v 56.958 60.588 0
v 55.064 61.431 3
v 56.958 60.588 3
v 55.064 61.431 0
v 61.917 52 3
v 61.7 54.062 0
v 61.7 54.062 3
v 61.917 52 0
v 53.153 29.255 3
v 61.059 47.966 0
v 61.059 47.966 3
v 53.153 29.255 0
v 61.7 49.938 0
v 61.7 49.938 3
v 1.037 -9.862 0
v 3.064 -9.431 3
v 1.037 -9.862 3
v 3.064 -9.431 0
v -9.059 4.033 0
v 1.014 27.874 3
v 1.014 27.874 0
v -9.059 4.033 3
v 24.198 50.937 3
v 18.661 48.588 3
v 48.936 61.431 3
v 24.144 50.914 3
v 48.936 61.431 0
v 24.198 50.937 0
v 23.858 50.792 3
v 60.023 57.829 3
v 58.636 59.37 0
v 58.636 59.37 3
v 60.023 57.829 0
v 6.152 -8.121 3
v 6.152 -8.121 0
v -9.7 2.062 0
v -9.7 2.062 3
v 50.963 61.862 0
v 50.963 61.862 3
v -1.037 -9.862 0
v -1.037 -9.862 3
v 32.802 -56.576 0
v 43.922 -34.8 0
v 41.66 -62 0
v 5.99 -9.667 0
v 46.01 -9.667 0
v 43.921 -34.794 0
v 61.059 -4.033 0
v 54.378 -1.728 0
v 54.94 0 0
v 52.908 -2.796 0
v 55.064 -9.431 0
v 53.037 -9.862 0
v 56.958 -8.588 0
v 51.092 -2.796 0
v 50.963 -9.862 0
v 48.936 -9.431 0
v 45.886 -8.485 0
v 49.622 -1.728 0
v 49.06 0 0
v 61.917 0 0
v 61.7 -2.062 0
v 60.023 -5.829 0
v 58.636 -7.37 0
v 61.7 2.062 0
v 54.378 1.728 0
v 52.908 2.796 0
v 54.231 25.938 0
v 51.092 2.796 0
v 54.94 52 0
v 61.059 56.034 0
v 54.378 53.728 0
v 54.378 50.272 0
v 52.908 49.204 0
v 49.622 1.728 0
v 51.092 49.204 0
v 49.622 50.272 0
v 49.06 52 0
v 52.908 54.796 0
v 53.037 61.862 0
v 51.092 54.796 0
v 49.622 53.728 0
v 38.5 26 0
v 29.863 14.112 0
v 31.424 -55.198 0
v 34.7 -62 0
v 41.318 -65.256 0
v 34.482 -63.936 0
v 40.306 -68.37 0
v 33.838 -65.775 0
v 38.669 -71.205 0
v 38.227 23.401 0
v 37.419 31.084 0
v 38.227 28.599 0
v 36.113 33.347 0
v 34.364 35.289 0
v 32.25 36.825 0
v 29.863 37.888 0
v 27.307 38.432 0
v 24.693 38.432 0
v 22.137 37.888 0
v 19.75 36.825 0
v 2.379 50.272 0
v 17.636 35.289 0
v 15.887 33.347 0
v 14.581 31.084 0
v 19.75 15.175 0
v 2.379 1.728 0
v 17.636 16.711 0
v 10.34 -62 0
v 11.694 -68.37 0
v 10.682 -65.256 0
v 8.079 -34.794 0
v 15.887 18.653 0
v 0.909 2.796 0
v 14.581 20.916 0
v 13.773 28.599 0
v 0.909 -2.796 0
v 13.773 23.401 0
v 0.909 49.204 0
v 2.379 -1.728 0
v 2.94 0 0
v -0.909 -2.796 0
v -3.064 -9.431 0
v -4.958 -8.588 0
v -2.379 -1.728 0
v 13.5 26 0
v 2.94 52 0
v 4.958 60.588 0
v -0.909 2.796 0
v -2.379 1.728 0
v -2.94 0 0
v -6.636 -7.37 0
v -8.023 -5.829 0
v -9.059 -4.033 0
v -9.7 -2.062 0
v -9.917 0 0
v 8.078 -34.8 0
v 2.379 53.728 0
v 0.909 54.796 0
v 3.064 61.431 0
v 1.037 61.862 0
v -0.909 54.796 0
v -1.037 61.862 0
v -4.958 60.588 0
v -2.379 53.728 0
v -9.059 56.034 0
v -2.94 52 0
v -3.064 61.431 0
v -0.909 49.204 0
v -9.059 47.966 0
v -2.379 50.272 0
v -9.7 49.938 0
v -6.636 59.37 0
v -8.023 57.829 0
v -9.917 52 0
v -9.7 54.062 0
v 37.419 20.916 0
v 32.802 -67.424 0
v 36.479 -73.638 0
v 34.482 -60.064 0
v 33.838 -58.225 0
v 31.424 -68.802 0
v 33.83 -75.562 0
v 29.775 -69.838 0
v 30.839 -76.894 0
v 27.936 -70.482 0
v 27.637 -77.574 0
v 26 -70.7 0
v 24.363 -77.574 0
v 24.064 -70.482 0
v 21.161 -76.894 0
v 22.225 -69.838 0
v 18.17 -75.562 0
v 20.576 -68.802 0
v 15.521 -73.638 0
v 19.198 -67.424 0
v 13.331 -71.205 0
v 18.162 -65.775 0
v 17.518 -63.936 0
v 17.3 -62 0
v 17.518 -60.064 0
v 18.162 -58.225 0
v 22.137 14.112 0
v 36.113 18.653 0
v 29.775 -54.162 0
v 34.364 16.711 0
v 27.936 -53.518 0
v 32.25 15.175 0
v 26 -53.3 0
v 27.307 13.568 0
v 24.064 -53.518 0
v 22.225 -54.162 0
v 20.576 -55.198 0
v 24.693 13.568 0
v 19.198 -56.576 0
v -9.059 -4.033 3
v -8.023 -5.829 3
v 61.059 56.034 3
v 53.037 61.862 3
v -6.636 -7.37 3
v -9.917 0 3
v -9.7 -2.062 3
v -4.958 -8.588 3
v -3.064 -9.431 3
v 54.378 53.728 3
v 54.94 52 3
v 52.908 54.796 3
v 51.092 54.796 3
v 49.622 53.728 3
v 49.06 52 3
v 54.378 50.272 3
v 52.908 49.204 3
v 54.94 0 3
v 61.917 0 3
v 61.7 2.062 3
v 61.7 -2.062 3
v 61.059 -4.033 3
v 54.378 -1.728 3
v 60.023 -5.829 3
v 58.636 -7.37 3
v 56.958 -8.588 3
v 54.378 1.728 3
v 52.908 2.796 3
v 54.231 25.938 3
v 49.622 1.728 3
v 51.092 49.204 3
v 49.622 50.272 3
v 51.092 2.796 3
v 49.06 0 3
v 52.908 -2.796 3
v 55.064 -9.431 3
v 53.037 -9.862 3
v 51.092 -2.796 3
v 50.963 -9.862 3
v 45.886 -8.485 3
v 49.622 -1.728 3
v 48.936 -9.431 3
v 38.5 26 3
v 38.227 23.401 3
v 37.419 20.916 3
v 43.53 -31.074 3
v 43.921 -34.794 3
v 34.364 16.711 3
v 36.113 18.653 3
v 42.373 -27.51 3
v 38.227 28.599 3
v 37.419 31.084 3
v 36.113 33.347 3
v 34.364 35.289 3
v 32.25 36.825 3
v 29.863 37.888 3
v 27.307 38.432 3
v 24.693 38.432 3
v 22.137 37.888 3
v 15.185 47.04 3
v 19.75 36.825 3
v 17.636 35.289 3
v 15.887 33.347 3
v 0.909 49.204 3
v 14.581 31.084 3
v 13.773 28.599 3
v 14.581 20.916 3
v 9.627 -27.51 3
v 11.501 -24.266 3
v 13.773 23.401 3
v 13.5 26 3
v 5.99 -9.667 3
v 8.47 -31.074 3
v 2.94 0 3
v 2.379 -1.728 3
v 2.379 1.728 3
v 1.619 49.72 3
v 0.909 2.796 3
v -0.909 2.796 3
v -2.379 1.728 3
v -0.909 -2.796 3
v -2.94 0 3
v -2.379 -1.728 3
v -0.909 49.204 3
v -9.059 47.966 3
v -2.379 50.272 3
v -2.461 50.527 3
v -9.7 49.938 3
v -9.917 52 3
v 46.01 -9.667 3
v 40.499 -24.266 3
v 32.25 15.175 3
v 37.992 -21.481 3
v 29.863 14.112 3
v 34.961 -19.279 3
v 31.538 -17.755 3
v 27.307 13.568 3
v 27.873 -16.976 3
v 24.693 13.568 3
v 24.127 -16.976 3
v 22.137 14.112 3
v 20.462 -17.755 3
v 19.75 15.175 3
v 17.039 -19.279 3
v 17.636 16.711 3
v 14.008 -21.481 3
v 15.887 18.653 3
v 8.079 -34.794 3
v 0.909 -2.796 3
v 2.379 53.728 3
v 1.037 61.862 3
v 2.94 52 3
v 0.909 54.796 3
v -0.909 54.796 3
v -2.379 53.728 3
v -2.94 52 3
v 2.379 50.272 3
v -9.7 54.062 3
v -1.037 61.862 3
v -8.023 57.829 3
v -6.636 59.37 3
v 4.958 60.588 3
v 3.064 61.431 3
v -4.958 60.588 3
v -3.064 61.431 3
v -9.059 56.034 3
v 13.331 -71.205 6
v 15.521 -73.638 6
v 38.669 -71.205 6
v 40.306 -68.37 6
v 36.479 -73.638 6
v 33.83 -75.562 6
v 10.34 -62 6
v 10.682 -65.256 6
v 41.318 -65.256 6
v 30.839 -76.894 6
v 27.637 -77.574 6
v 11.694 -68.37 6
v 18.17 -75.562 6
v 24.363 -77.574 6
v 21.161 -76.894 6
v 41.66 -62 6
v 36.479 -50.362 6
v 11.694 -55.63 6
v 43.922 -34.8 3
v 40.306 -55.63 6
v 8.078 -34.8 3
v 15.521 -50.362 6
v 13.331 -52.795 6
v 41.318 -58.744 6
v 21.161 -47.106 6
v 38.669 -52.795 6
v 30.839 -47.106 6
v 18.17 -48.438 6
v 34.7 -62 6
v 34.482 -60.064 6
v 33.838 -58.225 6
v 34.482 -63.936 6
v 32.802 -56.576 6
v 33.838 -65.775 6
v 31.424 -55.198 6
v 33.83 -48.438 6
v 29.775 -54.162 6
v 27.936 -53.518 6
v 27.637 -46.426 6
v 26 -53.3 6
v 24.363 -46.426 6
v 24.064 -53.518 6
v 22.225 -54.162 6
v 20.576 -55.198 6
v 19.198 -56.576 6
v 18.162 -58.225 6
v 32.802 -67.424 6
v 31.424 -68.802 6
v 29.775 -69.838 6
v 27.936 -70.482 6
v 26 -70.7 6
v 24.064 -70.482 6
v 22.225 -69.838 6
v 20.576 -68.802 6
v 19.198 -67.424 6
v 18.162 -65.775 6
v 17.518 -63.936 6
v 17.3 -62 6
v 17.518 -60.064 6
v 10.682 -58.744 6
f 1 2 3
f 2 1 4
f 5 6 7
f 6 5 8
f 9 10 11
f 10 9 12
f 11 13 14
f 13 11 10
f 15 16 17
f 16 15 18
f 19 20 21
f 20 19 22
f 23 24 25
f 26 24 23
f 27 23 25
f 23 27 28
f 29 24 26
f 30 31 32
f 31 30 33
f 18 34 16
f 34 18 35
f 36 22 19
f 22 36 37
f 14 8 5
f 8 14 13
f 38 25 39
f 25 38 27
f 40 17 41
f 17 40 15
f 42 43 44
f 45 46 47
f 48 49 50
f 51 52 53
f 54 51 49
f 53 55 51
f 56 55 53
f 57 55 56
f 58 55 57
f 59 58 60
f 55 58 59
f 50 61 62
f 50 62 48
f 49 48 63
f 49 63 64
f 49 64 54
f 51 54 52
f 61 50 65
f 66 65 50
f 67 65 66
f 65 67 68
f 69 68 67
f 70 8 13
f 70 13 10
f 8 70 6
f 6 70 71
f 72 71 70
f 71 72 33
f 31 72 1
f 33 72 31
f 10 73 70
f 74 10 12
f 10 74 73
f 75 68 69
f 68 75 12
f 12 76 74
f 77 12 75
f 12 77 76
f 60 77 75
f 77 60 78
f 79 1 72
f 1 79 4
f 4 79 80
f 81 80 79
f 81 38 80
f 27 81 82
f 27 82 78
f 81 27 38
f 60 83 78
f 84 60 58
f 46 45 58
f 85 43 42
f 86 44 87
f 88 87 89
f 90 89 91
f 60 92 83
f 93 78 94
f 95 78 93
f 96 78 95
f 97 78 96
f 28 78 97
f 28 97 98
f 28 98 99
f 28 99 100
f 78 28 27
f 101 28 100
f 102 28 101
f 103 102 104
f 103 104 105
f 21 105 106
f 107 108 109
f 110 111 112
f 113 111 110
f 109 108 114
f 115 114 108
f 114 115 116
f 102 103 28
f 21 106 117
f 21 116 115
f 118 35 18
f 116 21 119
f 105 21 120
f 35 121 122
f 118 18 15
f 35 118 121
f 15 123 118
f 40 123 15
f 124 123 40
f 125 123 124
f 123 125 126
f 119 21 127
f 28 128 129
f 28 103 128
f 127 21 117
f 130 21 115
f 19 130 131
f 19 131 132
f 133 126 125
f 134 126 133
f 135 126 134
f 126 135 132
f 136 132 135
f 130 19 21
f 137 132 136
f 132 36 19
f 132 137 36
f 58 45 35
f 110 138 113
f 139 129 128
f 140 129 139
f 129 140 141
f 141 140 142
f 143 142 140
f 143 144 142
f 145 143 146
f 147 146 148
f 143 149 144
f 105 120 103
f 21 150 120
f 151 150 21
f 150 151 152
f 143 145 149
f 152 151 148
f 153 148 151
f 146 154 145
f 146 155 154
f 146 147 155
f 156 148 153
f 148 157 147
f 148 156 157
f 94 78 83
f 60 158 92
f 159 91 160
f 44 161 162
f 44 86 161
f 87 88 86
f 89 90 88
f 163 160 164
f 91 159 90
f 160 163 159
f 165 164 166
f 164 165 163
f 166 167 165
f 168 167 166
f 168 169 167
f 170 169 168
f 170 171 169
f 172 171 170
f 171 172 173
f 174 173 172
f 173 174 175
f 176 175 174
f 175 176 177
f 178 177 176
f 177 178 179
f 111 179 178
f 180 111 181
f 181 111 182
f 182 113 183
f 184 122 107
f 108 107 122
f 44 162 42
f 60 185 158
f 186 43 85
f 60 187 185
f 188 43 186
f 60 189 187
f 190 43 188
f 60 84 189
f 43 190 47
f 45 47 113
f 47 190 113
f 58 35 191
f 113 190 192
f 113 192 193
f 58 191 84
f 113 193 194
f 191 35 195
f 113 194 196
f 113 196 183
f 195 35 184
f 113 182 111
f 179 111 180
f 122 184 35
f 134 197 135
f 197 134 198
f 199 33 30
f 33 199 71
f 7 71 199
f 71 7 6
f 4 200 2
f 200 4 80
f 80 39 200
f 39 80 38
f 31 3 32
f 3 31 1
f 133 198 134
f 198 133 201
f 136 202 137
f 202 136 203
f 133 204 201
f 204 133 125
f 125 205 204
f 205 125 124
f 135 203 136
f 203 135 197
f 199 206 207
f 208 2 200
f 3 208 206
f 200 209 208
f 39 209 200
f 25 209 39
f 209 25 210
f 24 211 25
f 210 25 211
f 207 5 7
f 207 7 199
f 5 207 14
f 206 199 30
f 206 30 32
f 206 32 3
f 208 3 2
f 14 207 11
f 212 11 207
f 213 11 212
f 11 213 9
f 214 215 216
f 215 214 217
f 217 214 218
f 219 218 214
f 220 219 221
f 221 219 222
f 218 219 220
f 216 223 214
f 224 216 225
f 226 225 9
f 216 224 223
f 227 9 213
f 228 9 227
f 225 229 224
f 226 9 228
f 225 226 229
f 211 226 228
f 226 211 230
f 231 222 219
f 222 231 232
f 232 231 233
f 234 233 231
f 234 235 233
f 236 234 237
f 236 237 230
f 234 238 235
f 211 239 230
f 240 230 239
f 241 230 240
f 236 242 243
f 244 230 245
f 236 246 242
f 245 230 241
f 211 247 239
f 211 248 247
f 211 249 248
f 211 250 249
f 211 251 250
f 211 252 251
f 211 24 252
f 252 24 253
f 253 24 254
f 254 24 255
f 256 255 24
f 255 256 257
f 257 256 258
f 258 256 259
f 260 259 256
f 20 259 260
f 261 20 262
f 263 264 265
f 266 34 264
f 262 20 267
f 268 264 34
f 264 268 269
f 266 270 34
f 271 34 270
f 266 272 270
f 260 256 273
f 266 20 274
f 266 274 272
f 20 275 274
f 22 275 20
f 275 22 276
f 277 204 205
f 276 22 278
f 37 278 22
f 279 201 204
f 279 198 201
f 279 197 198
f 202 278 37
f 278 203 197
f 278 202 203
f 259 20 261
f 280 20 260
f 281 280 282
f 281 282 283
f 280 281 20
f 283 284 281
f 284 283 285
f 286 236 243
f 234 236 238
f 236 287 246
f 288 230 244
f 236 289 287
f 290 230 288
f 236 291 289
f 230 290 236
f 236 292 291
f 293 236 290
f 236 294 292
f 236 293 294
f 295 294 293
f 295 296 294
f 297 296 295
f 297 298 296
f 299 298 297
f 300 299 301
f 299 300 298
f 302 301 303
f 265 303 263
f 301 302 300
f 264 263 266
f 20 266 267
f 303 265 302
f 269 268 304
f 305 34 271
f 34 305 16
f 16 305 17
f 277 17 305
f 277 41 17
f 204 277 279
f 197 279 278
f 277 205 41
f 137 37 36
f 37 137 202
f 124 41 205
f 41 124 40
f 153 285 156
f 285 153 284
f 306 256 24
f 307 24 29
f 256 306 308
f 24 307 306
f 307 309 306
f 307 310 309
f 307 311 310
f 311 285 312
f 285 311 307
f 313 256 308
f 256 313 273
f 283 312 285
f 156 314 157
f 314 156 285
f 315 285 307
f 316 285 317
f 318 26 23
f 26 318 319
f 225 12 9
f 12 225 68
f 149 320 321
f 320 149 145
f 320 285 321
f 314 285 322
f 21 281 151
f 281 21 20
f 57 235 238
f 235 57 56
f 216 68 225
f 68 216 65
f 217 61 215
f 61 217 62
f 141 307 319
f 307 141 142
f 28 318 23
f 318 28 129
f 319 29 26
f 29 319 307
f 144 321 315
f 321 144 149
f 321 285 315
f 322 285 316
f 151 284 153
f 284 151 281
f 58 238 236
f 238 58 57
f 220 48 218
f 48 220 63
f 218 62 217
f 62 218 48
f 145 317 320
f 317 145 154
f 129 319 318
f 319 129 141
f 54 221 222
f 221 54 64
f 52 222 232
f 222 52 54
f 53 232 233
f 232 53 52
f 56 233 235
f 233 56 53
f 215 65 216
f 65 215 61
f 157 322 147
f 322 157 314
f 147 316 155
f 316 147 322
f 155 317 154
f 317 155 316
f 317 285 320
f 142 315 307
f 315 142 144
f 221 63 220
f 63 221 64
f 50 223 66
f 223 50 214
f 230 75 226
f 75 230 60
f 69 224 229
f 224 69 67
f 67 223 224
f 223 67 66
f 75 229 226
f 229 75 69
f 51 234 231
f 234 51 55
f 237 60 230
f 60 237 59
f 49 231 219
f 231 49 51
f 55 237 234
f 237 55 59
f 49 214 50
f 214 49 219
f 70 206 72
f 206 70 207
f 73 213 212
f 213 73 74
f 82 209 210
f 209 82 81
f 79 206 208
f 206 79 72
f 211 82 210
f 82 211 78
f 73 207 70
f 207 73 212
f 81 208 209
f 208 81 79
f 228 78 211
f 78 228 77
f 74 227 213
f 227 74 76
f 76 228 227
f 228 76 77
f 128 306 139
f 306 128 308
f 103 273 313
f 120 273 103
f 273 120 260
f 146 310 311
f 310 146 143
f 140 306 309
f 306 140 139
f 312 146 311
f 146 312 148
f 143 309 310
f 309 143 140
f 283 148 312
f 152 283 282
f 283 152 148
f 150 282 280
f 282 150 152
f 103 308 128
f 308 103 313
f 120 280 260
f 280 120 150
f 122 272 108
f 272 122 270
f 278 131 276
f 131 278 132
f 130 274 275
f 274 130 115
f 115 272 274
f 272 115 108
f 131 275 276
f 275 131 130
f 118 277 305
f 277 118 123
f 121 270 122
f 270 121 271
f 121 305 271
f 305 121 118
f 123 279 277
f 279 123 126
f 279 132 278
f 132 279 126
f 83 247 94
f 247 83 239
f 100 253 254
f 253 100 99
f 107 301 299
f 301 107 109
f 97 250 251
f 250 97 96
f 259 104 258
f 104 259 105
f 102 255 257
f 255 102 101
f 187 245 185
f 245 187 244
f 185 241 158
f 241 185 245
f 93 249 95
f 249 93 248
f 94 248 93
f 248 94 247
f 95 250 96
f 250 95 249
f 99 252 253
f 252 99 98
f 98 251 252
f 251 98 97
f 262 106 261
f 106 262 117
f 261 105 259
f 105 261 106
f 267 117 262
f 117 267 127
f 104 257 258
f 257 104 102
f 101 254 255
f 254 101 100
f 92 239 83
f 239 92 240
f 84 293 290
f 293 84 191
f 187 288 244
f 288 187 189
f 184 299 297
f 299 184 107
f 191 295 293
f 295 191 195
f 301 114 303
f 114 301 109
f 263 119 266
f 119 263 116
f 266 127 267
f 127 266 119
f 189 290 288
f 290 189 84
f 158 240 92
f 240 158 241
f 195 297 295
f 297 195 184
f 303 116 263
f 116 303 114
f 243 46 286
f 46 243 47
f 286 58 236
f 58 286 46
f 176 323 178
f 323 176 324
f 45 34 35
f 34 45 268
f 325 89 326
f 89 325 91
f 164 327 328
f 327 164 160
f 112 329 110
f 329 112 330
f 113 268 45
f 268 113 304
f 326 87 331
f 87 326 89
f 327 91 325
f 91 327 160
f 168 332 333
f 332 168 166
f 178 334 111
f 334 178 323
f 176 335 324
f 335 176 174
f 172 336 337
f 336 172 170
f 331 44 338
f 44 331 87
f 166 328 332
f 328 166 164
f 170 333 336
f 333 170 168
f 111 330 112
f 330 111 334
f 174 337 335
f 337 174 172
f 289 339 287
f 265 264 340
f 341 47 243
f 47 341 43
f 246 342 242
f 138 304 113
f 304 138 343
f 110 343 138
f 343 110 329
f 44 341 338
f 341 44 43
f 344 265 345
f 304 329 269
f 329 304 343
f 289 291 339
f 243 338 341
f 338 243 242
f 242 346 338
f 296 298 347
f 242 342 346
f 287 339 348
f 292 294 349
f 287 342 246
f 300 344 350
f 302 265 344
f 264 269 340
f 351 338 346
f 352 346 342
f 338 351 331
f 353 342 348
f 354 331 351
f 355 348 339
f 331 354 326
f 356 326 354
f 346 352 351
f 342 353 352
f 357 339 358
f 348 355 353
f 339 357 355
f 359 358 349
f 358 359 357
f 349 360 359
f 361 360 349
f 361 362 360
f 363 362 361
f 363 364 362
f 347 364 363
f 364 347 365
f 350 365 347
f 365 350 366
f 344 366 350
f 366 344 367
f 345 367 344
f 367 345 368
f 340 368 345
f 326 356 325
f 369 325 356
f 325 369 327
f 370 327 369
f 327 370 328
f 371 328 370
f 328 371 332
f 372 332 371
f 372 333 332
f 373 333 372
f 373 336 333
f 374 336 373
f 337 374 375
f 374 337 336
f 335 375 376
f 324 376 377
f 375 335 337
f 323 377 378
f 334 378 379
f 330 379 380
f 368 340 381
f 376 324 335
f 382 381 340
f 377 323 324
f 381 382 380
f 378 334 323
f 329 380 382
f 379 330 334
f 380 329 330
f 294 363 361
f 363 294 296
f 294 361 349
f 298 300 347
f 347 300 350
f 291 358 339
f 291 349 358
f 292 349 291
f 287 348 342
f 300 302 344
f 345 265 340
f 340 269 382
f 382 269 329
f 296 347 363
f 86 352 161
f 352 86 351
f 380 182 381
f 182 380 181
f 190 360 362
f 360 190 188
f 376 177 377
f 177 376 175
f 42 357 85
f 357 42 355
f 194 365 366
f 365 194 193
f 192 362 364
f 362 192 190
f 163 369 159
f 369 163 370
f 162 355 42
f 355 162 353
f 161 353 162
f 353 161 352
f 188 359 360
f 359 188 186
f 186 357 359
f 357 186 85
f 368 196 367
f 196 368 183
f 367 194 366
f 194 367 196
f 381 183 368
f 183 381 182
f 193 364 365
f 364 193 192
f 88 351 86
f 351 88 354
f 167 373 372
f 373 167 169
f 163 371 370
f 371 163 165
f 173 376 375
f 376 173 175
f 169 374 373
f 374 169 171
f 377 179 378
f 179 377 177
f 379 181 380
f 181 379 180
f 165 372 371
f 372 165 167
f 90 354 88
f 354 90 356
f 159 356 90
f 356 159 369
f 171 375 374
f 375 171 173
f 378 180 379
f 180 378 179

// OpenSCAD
screw_d = 4.2/3*4.2; // mm
distance_screw = 52; // mm
thinkness_srcew = 5;

screw_motor = 25;

thinkness = 3;


distance_axis = 62;
thinkness_axis = 16+1.4;
axis_thinkness_factor = 2;

difference() {
    //form
    //cube( [ distance_screw+thinkness_srcew*2, distance_screw+thinkness_srcew*2, //thinkness]);
    
    translate() {    
    // kreuz neu
    hull() {
        // loch mitte
        translate( [ distance_screw/2, distance_screw/2, 0])
            cylinder( h = thinkness, d = screw_motor*1.9);
        
        translate( [ distance_screw, distance_screw, 0 ])
                cylinder( d = distance_screw/3+thinkness_srcew/2, h = thinkness);
        translate( [ 0, 0, 0 ])
                cylinder( d = distance_screw/3+thinkness_srcew/2, h = thinkness);
    }
    
    translate( [ 0, distance_screw, thinkness])
    rotate( [ 180, 0, 0])
    hull() {
        // loch mitte
        translate( [ distance_screw/2+thinkness_srcew, distance_screw/2+thinkness_srcew, 0])
            cylinder( h = thinkness, d = screw_motor*1.9);
        
        translate( [ distance_screw, distance_screw, 0 ])
                cylinder( d = distance_screw/3+thinkness_srcew/2, h = thinkness);
        translate( [ 0, 0, 0 ])
                cylinder( d = distance_screw/3+thinkness_srcew/2, h = thinkness);
    }
    }

/* old cube
    translate( [0, 0, -1 ]) {
        cube( [ distance_screw/3, distance_screw/3, thinkness+2]);
    }
    translate( [distance_screw/2+thinkness_srcew*2+distance_screw/6, 0, -1 ])
        cube( [ distance_screw/3, distance_screw/3, thinkness+2]);
    translate( [0, distance_screw/2+thinkness_srcew*2+distance_screw/6, -1 ])
        cube( [ distance_screw/3, distance_screw/3, thinkness+2]);
    translate( [distance_screw/2+thinkness_srcew*2+distance_screw/6, distance_screw/2+thinkness_srcew*2+distance_screw/6, -1 ])
        cube( [ distance_screw/3, distance_screw/3, thinkness+2]);
    
    }
  */  
    
    translate( [ distance_screw, 0, -1])
        cylinder( h = thinkness+2, $fn = 10, d = screw_d);
    translate( [ distance_screw, distance_screw, -1])
        cylinder( h = thinkness+2, $fn = 10, d = screw_d);
    translate( [ 0, distance_screw, -1])
        cylinder( h = thinkness+2, $fn = 10, d = screw_d);
    translate( [ 0, 0, -1])
        cylinder( h = thinkness+2, $fn = 10, d = screw_d);
        
    // loch mitte
    translate( [ distance_screw/2, distance_screw/2, -1])
        cylinder( h = thinkness+2, d = screw_motor);
    
}


difference() {
    translate() { 
        hull() {
            translate( [ distance_screw/2, -distance_axis, 0])
                cylinder( d = thinkness_axis*1.8, h = thinkness);
            translate( [ distance_screw/2, -thinkness_axis/1.8, 0])
                cylinder( d = thinkness_axis*2.3, h = thinkness);
        }
        hull() {
            translate( [ distance_screw/2, -distance_axis, 0])
                cylinder( d = thinkness_axis*1.8, h = thinkness*axis_thinkness_factor);
            translate( [ distance_screw/2, -thinkness_axis/0.5, 0])
                cylinder( d = thinkness_axis*2.06, h = thinkness);
        }
    }
    translate( [ distance_screw/2, -distance_axis, -1])
        cylinder( d = thinkness_axis, h = thinkness*axis_thinkness_factor+2);
}
